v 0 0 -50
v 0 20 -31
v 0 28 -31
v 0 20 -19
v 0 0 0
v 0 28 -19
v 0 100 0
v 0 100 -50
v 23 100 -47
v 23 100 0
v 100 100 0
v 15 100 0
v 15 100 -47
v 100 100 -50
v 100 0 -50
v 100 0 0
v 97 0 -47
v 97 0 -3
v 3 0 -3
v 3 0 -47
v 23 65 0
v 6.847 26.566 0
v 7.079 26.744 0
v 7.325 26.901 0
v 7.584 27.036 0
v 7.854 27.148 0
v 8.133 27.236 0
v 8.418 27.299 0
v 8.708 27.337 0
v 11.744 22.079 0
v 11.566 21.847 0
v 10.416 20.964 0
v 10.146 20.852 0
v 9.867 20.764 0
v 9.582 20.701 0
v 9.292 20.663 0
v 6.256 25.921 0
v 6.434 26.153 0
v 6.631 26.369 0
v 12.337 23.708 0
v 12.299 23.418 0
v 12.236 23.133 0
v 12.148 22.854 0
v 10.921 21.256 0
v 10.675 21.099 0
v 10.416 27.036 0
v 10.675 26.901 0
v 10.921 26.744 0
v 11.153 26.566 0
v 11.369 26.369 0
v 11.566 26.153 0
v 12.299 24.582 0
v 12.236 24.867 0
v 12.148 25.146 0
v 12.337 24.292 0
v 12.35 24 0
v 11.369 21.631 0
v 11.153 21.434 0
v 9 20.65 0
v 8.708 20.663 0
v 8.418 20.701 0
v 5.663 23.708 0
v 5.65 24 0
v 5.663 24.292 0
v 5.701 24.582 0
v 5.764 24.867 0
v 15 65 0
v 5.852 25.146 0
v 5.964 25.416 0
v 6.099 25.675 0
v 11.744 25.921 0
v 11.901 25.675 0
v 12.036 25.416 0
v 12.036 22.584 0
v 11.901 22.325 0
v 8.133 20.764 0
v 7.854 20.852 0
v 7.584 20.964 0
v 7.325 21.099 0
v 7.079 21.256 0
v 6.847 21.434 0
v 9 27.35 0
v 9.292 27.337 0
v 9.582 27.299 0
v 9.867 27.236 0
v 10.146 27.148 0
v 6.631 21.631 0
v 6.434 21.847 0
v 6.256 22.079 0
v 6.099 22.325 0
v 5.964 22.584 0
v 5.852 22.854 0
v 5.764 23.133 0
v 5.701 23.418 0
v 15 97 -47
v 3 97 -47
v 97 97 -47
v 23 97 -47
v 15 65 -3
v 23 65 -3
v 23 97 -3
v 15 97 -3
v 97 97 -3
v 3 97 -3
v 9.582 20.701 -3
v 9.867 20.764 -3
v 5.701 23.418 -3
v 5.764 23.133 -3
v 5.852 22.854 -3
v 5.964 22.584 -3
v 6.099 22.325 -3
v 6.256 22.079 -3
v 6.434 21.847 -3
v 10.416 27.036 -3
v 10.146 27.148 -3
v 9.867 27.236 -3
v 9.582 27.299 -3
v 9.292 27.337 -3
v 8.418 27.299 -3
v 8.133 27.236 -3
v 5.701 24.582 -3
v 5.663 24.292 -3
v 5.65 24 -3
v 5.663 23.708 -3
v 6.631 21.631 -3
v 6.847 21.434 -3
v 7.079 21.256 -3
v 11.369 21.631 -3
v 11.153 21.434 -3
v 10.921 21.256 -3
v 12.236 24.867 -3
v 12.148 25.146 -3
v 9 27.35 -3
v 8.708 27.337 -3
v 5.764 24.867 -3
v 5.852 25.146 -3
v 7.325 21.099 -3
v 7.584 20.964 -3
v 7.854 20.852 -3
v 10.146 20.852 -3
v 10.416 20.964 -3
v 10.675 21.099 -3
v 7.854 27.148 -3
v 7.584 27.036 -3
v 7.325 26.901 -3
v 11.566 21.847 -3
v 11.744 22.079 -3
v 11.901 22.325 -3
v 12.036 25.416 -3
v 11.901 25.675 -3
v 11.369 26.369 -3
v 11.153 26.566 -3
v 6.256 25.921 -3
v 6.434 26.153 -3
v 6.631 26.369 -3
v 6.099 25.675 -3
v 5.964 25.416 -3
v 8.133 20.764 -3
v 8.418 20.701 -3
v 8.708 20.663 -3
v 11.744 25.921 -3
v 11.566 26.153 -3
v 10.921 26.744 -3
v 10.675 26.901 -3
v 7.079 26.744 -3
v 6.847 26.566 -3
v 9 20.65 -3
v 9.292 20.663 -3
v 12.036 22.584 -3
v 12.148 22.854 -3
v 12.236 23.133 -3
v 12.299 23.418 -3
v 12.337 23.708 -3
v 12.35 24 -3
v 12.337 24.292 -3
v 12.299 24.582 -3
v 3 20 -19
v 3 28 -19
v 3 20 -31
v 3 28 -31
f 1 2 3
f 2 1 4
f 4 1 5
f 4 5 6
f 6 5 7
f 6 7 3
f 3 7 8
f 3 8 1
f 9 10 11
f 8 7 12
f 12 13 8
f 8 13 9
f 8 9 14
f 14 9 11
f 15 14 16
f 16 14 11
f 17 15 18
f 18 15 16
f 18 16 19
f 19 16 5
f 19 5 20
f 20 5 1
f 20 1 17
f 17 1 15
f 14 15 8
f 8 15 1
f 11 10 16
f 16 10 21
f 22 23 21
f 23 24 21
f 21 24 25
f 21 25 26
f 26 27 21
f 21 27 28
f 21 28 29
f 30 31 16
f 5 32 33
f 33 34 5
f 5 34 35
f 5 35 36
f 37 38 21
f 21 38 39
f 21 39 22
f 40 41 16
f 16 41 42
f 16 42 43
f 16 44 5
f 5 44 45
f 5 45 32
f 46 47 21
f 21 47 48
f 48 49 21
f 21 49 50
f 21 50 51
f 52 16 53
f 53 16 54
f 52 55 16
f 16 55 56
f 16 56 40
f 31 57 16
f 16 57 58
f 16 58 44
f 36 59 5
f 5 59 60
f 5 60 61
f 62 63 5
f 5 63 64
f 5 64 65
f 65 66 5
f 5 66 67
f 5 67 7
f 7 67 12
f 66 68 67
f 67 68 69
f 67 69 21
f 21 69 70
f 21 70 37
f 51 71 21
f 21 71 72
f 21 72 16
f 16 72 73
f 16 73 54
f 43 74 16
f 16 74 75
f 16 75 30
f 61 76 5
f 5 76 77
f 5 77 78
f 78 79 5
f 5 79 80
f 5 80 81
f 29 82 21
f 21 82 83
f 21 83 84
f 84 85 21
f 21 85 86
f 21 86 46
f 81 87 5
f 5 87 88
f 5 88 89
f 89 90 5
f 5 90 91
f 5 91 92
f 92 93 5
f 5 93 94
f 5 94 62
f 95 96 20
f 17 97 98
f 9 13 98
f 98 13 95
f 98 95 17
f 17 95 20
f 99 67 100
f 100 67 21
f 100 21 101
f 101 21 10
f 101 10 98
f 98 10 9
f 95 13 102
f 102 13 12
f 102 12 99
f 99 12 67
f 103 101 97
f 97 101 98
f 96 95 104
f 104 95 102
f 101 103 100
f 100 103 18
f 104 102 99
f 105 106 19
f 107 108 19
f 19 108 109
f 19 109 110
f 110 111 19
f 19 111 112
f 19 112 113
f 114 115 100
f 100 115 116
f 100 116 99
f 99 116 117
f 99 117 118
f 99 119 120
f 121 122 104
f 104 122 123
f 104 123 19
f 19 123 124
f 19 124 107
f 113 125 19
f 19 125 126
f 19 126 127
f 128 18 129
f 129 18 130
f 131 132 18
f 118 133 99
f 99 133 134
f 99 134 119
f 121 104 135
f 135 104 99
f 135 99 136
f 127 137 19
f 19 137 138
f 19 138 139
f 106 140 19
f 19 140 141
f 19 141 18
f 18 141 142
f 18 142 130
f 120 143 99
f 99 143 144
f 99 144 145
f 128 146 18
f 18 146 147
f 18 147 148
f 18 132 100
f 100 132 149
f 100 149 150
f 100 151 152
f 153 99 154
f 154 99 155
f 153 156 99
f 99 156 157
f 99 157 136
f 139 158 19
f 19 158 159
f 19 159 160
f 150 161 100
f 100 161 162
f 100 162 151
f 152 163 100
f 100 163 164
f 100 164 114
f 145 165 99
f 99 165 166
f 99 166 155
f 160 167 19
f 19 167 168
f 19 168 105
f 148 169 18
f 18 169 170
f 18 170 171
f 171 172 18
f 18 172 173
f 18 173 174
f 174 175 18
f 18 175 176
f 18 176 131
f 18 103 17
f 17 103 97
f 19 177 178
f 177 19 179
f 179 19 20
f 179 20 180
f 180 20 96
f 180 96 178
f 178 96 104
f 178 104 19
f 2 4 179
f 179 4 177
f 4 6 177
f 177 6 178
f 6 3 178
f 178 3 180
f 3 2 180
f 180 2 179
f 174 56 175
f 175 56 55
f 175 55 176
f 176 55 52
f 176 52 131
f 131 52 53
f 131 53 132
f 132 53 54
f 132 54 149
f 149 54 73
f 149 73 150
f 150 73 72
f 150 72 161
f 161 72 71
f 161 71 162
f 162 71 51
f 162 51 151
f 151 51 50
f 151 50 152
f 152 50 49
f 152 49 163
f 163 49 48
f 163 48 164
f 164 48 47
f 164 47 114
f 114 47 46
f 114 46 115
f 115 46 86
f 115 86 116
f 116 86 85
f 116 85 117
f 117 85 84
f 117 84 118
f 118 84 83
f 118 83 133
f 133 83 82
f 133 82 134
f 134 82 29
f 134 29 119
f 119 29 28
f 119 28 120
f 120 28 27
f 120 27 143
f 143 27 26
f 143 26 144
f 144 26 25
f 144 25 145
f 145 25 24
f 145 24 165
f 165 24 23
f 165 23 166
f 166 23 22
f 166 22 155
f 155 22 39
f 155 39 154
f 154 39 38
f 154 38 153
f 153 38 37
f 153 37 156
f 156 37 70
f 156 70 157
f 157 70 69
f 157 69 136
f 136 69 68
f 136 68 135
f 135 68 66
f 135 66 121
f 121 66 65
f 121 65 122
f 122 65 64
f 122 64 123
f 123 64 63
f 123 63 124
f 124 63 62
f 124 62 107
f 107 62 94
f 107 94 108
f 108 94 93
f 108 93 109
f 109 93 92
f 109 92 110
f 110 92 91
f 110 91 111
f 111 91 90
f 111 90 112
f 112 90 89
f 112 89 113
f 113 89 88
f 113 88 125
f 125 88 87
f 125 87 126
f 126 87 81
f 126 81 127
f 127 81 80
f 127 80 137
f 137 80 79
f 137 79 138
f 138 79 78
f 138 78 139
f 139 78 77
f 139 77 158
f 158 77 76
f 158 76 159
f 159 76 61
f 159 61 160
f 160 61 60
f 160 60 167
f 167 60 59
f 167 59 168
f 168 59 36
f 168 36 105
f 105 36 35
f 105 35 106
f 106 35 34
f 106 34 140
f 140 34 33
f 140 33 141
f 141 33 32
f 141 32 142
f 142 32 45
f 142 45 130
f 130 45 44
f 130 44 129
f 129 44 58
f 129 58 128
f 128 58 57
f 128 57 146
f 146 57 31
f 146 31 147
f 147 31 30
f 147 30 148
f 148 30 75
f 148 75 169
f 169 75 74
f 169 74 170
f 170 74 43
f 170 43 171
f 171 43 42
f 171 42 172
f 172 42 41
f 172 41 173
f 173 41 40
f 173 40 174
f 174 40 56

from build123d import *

# Parameters (mm, degrees)
SKETCH1_W           = 100
SKETCH1_H           = 100
BOSS_EXTRUDE2_DEPTH = 50
SKETCH3_W           = 8
SKETCH3_H           = 35
CUT_EXTRUDE2_DEPTH  = 47
SKETCH4_W           = 94
SKETCH4_H           = 44
CUT_EXTRUDE3_DEPTH  = 97
CUT_EXTRUDE4_REACH  = 152
SKETCH5_W           = 12
SKETCH5_H           = 8
CUT_EXTRUDE5_REACH  = 152
SKETCH6_R           = 3.35


with BuildPart() as part:
    # Sketch1 → Boss-Extrude2 (new body)
    with BuildSketch(Plane.XY):
        with Locations((50, 50)):
            Rectangle(SKETCH1_W, SKETCH1_H)
    extrude(amount=-BOSS_EXTRUDE2_DEPTH)

    # Sketch3 → Cut-Extrude2 (cut)
    with BuildSketch(Plane.XY):
        with Locations((19, 82.5)):
            Rectangle(SKETCH3_W, SKETCH3_H)
    extrude(amount=-CUT_EXTRUDE2_DEPTH, mode=Mode.SUBTRACT)

    # Sketch4 → Cut-Extrude3 (cut)
    with BuildSketch(Plane.XZ):
        with Locations((50, -25)):
            Rectangle(SKETCH4_W, SKETCH4_H)
    extrude(amount=-CUT_EXTRUDE3_DEPTH, mode=Mode.SUBTRACT)

    # Sketch5 → Cut-Extrude4 (cut, up to next)
    with BuildSketch(Plane.ZY, mode=Mode.PRIVATE) as cut_extrude4_sk1:
        with Locations((-25, 24)):
            Rectangle(SKETCH5_W, SKETCH5_H)
    cut_extrude4_tool1 = extrude(cut_extrude4_sk1.sketch, amount=-CUT_EXTRUDE4_REACH, mode=Mode.PRIVATE) & part.part
    add(cut_extrude4_tool1.solids().sort_by_distance((0, 24, -25))[0], mode=Mode.SUBTRACT)

    # Sketch6 → Cut-Extrude5 (cut, up to next)
    with BuildSketch(Plane.XY, mode=Mode.PRIVATE) as cut_extrude5_sk1:
        with Locations((9, 24)):
            Circle(SKETCH6_R)
    cut_extrude5_tool1 = extrude(cut_extrude5_sk1.sketch, amount=-CUT_EXTRUDE5_REACH, mode=Mode.PRIVATE) & part.part
    add(cut_extrude5_tool1.solids().sort_by_distance((9, 24, 0))[0], mode=Mode.SUBTRACT)


solid = part.part
